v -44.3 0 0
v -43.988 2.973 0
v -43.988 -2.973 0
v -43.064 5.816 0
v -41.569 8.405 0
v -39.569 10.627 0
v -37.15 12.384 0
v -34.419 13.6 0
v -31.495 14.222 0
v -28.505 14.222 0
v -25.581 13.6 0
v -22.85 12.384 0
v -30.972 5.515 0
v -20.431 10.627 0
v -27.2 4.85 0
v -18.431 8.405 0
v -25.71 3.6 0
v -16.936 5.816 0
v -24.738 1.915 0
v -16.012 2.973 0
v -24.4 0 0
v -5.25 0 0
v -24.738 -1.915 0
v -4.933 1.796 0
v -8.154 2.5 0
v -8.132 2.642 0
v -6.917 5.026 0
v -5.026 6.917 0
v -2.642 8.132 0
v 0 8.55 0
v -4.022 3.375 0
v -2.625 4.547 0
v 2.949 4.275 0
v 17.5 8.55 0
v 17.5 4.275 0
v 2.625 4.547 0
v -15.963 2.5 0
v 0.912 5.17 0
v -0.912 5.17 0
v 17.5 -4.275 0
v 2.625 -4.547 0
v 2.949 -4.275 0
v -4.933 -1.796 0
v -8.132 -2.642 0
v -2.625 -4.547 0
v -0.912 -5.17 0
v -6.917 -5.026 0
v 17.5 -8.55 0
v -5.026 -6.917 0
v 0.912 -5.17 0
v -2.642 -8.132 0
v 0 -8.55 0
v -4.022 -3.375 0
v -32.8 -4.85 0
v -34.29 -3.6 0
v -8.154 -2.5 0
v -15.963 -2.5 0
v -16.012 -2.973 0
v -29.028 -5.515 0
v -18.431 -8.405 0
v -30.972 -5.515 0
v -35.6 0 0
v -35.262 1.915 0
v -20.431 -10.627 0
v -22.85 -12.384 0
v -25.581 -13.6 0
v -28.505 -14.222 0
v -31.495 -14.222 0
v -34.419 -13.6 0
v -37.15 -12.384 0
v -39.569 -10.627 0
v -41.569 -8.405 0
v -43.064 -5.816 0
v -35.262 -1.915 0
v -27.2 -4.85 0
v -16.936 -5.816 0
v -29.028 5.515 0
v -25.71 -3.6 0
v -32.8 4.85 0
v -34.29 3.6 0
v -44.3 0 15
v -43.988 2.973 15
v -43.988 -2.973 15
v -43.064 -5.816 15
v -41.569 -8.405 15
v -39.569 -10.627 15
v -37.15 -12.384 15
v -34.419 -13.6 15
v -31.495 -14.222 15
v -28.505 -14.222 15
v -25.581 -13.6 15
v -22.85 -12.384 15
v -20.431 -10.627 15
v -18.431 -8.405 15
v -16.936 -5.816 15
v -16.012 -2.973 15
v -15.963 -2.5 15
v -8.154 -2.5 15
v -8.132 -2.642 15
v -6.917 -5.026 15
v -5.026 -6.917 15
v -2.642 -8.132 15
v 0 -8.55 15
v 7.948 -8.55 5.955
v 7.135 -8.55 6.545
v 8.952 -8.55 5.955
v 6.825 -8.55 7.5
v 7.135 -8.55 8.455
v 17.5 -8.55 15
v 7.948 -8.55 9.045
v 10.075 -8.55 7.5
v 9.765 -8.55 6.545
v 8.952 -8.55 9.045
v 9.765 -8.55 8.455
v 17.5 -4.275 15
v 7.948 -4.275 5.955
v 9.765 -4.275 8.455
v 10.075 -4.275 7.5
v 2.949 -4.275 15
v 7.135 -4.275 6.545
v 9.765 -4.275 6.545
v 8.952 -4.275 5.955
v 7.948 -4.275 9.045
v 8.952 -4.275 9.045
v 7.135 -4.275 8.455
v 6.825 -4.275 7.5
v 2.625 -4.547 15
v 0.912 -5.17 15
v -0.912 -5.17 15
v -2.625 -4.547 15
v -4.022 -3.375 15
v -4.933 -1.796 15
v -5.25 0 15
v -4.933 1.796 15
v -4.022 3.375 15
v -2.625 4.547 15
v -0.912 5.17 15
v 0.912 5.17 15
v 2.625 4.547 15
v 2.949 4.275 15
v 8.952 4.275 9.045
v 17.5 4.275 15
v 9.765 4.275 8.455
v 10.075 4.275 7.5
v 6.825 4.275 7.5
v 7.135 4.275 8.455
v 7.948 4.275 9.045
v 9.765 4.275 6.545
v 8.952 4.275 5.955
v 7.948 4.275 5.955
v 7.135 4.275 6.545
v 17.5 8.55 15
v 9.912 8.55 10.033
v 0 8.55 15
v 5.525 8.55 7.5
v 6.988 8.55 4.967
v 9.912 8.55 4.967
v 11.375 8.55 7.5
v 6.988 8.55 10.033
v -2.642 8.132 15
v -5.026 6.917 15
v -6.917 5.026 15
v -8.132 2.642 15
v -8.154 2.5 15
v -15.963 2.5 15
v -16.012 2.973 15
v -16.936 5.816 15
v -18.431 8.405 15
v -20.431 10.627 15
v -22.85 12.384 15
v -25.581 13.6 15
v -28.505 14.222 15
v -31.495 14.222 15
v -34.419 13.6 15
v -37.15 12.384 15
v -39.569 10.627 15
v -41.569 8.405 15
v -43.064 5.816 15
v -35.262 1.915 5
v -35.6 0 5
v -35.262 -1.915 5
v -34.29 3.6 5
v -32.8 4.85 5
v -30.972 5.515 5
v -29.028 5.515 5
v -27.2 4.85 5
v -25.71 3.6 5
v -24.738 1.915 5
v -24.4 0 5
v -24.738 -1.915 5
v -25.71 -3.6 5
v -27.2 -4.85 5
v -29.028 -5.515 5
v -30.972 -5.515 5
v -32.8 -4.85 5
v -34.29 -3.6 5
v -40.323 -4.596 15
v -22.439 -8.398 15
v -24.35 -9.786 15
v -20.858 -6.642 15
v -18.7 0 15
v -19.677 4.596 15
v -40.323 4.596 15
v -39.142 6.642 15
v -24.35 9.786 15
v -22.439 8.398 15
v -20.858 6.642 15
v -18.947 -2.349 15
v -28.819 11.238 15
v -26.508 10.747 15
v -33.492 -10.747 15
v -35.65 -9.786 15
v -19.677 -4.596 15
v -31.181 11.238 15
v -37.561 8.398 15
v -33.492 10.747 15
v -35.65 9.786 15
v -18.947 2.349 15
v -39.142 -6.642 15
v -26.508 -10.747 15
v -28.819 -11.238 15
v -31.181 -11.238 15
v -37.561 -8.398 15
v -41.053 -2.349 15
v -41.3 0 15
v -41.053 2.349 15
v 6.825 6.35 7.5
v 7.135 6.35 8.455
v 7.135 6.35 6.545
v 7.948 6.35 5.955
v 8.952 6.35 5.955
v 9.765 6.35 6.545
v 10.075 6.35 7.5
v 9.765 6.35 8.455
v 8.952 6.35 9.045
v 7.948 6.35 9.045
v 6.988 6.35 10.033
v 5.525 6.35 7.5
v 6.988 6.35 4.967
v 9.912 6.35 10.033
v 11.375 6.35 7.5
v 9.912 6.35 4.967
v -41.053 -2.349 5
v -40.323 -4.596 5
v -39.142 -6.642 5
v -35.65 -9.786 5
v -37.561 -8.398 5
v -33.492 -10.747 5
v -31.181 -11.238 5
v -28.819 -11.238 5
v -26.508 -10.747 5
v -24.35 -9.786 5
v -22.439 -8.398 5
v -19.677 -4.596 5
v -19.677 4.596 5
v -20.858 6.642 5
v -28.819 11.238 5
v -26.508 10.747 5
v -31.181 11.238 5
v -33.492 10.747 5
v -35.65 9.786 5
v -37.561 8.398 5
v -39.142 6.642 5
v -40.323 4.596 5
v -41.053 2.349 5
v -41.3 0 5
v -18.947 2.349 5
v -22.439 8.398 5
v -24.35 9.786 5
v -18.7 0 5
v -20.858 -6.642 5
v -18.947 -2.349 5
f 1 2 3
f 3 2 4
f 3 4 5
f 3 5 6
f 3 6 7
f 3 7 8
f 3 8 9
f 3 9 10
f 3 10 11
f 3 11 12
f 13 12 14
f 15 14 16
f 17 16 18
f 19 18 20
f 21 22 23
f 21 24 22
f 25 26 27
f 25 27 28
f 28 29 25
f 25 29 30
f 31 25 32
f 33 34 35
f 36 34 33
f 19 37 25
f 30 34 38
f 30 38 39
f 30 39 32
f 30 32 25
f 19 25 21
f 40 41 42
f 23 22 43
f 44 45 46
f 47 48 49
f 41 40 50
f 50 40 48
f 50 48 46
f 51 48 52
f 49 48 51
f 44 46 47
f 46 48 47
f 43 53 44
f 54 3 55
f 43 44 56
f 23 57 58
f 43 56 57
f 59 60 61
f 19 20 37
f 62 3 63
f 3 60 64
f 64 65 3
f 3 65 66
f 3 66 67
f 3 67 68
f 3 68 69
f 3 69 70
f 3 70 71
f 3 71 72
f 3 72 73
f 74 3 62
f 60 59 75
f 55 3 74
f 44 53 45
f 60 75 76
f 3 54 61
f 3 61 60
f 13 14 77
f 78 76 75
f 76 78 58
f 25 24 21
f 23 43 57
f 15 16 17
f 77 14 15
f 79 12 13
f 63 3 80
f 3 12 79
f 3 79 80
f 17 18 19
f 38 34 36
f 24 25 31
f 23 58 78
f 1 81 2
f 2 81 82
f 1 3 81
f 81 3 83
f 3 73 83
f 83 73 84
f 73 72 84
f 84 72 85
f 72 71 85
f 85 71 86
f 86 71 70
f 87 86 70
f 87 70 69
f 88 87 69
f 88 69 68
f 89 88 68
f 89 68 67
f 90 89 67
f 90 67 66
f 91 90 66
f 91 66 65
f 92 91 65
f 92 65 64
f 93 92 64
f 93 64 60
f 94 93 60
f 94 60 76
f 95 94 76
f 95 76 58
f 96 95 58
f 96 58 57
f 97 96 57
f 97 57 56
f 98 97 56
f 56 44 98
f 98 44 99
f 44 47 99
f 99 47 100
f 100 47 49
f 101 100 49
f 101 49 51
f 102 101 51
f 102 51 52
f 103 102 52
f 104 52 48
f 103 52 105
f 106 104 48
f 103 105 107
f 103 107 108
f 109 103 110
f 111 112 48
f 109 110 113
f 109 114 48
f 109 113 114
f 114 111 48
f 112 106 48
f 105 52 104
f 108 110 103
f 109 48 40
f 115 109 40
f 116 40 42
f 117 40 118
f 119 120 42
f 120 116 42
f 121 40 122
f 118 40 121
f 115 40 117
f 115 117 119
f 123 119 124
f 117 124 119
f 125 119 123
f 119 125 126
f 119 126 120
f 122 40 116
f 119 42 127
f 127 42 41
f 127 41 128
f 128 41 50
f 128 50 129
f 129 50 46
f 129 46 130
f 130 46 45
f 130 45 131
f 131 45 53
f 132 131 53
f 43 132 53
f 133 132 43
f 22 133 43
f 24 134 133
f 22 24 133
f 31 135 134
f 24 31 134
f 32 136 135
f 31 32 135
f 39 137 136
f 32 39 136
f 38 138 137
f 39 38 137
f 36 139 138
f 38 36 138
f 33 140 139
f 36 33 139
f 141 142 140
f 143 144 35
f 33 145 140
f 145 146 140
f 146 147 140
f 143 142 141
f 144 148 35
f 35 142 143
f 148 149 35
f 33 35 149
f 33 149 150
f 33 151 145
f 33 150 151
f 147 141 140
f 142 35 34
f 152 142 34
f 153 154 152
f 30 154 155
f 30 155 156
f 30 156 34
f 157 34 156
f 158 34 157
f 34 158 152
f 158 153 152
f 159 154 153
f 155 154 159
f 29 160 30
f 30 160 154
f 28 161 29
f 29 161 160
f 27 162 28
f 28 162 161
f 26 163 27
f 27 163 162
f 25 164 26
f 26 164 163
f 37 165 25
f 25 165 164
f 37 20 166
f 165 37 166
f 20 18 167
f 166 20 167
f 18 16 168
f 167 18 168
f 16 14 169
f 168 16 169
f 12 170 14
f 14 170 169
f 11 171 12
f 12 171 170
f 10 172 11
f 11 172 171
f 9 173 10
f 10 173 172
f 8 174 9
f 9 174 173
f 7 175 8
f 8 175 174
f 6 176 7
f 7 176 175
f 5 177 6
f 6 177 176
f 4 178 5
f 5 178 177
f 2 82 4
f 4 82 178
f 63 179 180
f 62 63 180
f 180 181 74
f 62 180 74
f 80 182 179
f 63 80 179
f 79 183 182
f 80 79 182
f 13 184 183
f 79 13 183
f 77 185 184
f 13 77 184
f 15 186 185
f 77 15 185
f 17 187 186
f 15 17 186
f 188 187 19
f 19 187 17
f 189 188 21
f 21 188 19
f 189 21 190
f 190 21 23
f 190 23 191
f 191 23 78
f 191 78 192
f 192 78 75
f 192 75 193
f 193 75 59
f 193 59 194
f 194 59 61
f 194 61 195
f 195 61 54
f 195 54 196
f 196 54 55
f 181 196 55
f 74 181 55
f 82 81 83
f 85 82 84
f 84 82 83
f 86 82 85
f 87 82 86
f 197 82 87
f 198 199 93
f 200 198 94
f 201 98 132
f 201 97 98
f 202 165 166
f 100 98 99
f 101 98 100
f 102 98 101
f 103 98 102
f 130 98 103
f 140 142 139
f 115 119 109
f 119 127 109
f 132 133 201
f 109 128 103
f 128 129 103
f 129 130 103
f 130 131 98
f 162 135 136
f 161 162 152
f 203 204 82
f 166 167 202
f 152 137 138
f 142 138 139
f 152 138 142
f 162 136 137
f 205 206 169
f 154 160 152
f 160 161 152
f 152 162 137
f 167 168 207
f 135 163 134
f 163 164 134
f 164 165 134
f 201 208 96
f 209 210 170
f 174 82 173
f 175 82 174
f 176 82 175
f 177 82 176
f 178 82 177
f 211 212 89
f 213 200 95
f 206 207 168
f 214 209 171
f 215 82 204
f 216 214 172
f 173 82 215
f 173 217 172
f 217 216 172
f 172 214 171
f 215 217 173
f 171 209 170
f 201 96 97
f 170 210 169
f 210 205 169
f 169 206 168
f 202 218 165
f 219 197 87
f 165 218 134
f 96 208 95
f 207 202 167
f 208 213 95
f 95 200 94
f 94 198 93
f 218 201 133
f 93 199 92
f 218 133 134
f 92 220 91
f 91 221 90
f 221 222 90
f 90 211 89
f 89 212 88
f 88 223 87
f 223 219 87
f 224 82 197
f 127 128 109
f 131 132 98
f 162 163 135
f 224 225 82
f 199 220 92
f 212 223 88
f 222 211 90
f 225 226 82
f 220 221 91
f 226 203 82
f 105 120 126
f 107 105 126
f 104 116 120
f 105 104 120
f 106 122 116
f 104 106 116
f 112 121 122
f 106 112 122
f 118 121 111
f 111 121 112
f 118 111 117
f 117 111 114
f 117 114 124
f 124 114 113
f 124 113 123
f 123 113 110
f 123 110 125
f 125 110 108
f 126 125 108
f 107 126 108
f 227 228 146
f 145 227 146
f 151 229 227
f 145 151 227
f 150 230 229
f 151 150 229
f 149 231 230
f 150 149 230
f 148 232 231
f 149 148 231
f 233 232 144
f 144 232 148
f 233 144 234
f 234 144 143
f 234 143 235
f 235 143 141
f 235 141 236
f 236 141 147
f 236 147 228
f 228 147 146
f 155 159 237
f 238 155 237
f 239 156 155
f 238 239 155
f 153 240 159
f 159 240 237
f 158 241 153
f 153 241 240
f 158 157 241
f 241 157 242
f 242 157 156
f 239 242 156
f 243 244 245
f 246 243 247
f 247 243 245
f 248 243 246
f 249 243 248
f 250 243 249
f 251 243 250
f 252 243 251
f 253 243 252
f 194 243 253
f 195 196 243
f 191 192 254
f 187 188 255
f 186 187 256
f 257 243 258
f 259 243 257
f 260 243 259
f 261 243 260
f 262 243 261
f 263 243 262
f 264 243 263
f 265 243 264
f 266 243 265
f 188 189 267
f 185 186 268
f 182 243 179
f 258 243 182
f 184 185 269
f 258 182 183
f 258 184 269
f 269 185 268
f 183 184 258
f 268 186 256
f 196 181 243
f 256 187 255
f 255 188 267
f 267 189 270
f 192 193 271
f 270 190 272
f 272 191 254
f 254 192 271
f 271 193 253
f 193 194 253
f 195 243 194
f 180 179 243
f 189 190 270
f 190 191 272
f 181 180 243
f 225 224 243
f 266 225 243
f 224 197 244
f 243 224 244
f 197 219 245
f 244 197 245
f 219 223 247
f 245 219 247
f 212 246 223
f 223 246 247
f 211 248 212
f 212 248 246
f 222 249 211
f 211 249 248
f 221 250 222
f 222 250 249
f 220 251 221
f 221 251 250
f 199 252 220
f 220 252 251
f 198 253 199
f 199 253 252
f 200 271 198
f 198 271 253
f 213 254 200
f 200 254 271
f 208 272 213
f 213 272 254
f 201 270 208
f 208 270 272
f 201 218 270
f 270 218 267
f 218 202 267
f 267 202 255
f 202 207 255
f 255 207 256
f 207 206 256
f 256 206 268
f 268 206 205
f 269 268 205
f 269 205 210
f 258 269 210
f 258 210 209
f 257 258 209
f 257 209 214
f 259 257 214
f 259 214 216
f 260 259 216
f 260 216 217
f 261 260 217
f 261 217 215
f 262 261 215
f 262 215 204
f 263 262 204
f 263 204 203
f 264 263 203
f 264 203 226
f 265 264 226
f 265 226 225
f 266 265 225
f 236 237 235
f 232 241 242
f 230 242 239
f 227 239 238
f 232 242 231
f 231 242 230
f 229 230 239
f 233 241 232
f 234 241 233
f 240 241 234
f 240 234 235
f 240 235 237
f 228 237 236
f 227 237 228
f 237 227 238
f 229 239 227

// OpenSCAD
// PRUSA Mendel  
// GNU GPL v2
// Z threaded rod constraint

//include <configuration.scad>
m3_diameter = 3.25;
m3_nut_diameter = m3_diameter * 1.8;
m8_diameter = 8.2;
m10_diameter = 10.5;
outer_radius = m10_diameter/2+3.3; // default m8_diameter
shaft_separation = 30;
bearing_od = 22.6;
bearing_id = m8_diameter;
bearing_rodhole_d = bearing_id + 3;

module origclamp(){
  difference(){
    union(){ // body
      translate([outer_radius, outer_radius, 0])
			cylinder(h =15, r = outer_radius, $fn = 20);
      translate([outer_radius, 0, 0])
			cube([17.5,outer_radius * 2,15]); // default [17.5,15,15]
    }

    translate([9, outer_radius/2, -.1]) 
		cube([18, outer_radius, 20]); // cut for clamp
    translate([outer_radius, outer_radius, -0.1]) 
		cylinder(h =20, r = m10_diameter/2, $fn = 18);
    translate([17, 22, 7.5]) rotate([90, 0, 0]) 
		cylinder(h =30, r = m3_diameter/2, $fn = 10);
		
	translate([17, m10_diameter + 7, 7.5]) rotate([90, 0, 0])  
		cylinder(h =m3_diameter * .8, r = m3_nut_diameter/2, $fn = 6);
  }
}

difference() {

  union() {
    translate([-outer_radius,-outer_radius,0]) origclamp();
    translate([-shaft_separation,0,0]) {
      cylinder(r=(bearing_od/2) + 3, h=15); // outer bearing
     translate([-m8_diameter/2,-2.5,0]) // connect bearing to clamp
		cube([28,5,15]); // was [39,5,15]
    }
  }

  translate([-shaft_separation, 0,0]) {
    translate([0,0,5]) cylinder(r=bearing_od/2, h=15);
    translate([0,0,-1]) cylinder(r=bearing_rodhole_d/2, h=20);
  }
}

//translate([5,-5,0]) #cube(10); // test clamp width
